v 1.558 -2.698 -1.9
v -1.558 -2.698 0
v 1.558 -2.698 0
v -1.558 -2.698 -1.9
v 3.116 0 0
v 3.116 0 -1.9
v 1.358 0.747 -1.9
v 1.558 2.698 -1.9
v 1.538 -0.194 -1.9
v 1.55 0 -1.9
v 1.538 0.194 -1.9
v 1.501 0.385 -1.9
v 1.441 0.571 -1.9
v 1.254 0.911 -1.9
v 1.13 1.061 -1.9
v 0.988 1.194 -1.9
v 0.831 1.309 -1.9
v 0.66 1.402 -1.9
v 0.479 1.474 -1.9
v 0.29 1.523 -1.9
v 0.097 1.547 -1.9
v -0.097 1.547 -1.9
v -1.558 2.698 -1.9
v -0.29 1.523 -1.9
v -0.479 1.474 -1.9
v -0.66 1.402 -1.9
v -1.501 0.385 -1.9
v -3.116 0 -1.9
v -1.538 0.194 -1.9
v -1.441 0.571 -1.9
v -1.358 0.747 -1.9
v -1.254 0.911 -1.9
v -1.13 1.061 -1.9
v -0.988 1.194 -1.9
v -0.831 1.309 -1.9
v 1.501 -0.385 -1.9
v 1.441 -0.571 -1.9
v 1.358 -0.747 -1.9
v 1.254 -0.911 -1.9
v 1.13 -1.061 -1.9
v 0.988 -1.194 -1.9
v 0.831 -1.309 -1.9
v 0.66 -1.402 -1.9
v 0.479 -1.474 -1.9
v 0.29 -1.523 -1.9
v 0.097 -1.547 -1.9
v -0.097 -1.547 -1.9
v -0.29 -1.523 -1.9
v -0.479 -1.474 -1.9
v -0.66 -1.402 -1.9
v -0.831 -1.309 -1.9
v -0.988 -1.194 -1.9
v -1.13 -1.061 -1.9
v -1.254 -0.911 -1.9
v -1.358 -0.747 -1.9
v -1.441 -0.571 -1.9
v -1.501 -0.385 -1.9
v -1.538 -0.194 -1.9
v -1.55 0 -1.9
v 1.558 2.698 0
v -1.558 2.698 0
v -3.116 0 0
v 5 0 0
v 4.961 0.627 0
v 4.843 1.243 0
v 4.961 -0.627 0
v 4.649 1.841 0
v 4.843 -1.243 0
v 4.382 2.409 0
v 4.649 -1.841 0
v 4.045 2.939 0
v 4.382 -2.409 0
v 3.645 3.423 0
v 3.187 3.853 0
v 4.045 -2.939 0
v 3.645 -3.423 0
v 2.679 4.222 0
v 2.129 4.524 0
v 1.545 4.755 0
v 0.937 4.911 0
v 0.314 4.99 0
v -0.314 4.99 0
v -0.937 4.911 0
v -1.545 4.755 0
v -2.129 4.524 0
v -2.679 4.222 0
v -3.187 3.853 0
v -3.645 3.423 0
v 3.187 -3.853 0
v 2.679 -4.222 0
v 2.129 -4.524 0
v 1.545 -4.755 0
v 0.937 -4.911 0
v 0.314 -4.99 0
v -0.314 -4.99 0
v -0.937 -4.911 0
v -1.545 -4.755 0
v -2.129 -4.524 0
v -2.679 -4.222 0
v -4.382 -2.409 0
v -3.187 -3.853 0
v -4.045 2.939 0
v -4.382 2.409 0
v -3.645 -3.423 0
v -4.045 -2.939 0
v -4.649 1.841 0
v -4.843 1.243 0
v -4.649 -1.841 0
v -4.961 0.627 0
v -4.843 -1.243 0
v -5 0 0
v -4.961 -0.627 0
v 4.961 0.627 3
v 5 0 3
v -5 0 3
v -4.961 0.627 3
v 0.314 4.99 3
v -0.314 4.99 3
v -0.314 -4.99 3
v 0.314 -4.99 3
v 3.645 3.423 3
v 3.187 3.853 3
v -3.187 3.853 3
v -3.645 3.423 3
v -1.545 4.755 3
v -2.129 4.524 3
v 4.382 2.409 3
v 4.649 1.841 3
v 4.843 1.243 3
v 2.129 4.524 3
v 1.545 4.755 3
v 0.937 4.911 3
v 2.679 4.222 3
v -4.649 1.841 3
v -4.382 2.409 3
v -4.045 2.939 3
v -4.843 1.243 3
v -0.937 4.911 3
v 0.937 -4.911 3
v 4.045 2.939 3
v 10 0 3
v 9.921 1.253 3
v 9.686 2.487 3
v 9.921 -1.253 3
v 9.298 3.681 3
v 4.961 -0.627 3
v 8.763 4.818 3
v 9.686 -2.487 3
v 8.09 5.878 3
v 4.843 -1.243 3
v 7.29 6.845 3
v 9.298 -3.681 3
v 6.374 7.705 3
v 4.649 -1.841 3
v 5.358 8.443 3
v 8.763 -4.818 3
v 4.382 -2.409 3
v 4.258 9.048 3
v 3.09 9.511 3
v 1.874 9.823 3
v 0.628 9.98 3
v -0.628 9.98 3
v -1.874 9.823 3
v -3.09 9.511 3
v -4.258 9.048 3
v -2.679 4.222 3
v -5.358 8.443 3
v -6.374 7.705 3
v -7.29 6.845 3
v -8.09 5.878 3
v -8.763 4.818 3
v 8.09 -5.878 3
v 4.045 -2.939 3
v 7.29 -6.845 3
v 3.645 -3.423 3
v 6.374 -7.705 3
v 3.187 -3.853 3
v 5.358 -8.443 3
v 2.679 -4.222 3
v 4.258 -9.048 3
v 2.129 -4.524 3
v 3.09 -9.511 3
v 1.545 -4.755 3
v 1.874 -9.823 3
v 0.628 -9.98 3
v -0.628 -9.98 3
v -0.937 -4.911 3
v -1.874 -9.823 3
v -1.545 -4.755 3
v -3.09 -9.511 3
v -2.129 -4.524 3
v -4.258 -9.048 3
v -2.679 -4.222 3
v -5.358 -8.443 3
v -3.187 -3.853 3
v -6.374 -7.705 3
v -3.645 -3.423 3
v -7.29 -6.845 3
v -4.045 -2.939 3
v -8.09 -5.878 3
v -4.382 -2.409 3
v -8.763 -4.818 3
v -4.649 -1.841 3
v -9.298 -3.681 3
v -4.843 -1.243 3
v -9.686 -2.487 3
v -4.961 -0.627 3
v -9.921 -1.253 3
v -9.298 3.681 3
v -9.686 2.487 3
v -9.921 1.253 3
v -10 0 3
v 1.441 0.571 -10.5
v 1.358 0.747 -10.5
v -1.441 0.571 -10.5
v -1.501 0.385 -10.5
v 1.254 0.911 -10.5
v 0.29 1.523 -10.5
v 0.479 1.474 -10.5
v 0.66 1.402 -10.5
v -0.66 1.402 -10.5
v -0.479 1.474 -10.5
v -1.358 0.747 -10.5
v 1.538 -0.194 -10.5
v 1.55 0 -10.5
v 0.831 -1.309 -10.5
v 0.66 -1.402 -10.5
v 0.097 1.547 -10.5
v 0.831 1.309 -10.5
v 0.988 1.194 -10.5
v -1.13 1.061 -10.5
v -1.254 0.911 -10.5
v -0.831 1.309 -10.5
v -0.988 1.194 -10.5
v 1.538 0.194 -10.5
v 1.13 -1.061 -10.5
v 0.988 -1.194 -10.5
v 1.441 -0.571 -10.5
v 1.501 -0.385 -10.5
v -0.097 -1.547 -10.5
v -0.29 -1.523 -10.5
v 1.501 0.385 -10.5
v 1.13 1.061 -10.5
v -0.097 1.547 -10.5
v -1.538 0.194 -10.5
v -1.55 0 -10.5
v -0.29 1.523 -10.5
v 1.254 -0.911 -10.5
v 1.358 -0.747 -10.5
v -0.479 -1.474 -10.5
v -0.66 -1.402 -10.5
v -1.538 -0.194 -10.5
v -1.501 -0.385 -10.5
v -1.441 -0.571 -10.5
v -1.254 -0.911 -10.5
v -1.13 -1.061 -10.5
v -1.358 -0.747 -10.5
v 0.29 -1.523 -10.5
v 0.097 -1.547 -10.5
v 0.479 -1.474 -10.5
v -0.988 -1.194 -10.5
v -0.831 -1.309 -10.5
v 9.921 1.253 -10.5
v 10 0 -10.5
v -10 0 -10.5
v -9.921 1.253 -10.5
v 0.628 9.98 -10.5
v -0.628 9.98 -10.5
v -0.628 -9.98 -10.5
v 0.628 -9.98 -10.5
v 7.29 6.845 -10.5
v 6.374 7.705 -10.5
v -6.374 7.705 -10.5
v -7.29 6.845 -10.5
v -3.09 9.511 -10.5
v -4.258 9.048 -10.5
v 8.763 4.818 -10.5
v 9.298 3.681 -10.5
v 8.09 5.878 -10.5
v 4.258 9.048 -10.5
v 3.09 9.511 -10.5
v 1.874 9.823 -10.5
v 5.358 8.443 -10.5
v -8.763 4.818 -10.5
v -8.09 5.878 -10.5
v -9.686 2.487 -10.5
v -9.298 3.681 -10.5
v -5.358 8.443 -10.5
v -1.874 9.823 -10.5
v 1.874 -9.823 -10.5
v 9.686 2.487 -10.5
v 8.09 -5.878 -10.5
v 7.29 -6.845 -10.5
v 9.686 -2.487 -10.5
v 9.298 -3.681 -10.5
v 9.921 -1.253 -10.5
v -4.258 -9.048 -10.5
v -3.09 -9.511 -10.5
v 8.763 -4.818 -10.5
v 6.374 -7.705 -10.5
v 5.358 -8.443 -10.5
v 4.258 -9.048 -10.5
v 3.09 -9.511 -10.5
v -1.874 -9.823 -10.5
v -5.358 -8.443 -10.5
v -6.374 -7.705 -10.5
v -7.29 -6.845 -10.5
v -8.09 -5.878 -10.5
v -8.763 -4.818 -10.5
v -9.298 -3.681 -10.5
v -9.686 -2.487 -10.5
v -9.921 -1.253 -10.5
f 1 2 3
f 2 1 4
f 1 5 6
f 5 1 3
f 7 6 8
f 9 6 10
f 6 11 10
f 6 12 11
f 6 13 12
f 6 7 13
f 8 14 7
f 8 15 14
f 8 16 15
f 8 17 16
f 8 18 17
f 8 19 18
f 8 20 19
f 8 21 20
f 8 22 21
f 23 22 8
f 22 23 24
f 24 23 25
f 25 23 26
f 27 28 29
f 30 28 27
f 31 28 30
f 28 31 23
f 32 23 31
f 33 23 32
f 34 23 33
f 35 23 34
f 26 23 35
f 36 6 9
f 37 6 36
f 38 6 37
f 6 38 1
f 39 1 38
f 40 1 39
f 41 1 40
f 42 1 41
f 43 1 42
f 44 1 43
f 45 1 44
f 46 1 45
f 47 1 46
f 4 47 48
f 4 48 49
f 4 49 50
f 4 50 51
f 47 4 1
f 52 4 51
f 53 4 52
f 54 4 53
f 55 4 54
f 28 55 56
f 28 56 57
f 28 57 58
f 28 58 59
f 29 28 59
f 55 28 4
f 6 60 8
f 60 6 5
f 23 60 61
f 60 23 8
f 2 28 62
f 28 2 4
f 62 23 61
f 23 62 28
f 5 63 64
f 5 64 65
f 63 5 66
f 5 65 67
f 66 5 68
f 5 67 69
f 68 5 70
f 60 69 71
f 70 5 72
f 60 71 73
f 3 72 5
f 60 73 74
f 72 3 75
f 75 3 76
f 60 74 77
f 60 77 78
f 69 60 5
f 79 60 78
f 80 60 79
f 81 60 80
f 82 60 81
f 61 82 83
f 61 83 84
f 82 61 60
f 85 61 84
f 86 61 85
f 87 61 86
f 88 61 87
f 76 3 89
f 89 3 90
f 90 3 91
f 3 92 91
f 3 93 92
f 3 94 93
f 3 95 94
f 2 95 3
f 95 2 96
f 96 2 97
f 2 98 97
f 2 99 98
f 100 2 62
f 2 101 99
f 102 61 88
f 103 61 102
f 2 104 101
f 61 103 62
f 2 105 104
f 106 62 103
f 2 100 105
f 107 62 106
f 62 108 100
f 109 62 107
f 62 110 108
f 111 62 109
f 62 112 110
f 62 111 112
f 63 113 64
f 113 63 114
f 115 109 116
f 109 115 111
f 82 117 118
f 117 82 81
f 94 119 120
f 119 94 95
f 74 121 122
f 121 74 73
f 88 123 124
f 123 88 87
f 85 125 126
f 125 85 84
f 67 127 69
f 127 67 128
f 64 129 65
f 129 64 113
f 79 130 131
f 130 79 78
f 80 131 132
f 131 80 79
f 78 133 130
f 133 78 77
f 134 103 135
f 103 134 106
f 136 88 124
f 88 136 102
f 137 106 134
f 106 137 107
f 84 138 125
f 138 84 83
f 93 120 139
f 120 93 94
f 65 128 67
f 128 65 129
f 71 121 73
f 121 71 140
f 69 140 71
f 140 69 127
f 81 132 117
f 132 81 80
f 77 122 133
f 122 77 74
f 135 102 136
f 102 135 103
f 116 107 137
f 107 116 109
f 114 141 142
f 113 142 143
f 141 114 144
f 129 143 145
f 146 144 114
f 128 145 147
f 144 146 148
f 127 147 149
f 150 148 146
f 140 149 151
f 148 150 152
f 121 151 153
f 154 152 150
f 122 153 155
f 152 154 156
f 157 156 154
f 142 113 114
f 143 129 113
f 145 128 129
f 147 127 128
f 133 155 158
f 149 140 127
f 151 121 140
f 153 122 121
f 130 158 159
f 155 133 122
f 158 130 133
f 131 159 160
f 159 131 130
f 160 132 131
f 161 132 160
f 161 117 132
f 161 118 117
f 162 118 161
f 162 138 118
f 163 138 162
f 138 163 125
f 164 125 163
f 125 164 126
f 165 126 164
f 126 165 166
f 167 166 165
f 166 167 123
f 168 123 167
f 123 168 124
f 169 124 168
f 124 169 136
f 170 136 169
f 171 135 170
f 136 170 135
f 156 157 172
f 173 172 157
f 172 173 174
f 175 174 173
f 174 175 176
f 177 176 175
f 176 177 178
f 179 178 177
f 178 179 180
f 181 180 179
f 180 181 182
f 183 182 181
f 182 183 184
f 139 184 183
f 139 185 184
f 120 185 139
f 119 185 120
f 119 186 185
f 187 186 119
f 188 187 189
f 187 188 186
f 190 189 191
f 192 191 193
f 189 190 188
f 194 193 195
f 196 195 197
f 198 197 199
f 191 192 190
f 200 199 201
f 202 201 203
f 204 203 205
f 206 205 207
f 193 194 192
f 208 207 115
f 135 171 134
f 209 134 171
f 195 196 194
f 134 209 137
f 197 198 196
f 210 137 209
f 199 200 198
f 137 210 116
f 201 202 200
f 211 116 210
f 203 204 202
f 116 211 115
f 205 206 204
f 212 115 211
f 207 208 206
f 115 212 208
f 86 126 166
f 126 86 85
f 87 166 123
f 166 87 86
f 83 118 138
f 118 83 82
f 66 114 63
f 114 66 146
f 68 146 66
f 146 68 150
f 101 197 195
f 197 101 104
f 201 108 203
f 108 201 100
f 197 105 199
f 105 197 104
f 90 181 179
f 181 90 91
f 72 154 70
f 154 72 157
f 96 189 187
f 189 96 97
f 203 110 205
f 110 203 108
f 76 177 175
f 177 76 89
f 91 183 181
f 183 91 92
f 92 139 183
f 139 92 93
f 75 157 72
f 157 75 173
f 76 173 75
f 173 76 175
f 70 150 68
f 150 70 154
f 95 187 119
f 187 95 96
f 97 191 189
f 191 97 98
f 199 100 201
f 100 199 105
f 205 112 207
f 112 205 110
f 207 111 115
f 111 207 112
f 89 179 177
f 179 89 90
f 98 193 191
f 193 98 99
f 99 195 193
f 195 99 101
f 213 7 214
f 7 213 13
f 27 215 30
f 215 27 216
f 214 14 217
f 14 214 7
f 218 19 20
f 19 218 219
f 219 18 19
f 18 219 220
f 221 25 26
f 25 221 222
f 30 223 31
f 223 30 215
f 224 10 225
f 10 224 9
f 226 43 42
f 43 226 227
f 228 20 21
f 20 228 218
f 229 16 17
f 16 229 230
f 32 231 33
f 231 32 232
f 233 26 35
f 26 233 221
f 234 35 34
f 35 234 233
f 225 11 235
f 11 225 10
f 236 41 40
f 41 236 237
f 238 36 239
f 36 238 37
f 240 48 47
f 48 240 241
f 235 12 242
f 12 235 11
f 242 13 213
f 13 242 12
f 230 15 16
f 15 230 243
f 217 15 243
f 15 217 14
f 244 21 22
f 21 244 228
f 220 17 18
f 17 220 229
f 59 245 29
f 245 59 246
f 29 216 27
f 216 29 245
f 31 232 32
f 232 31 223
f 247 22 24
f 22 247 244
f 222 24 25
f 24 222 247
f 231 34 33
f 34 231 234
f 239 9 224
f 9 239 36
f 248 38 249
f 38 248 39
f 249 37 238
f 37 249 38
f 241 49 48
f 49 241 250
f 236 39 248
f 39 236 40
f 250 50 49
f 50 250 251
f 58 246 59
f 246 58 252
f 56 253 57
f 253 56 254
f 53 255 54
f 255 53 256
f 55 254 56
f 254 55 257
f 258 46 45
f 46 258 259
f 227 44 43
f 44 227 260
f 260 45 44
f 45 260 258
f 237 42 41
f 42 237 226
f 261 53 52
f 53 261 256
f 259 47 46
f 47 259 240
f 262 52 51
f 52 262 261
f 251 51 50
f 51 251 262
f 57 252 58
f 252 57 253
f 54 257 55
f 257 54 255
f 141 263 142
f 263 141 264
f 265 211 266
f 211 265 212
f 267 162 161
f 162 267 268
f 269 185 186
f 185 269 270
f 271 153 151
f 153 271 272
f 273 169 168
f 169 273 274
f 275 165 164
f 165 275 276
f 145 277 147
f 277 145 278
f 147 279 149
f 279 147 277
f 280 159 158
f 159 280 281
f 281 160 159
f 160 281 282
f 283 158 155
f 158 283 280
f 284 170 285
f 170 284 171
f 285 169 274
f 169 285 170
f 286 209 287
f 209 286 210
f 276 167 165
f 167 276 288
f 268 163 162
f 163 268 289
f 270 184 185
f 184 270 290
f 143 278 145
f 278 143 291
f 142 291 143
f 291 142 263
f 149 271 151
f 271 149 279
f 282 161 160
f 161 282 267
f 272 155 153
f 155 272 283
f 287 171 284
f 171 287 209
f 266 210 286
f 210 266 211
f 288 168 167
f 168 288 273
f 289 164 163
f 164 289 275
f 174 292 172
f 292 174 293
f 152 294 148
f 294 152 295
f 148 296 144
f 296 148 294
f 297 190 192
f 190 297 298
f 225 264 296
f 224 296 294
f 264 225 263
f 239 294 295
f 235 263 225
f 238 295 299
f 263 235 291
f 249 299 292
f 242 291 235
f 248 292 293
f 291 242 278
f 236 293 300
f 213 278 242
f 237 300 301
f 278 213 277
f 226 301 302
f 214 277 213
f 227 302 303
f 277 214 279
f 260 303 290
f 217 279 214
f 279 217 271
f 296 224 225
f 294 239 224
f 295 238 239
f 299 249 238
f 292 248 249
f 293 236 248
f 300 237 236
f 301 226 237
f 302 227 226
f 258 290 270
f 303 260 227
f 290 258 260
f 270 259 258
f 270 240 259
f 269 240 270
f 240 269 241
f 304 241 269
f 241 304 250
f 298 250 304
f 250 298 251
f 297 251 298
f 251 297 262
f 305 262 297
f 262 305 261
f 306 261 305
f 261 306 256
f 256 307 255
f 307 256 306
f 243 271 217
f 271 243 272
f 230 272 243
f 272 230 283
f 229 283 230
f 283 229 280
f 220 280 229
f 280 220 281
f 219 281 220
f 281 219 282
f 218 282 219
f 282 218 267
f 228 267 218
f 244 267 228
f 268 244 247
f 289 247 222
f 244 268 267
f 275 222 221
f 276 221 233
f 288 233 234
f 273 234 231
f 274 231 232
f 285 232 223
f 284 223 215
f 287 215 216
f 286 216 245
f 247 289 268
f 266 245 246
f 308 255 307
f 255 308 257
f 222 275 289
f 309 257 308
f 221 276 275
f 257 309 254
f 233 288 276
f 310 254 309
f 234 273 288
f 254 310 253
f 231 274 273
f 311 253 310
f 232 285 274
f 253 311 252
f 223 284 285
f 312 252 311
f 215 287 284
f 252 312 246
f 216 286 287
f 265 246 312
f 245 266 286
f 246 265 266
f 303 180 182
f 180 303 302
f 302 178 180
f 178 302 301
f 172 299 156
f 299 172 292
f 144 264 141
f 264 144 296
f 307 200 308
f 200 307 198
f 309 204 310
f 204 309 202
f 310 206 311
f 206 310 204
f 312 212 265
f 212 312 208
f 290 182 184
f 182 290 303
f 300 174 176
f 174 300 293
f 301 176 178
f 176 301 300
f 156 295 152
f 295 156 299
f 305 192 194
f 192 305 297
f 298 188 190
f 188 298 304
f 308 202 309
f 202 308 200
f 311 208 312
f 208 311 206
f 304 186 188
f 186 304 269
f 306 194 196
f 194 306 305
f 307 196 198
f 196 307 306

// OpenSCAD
$fn = 50;


difference() {
	union() {
		translate(v = [0, 0, -10.5000000000]) {
			cylinder(h = 13.5000000000, r = 10.0000000000);
		}
	}
	union() {
		translate(v = [0, 0, 0]) {
			rotate(a = [0, 0, 0]) {
				difference() {
					union() {
						translate(v = [0, 0, -1.9000000000]) {
							linear_extrude(height = 1.9000000000) {
								polygon(points = [[3.1158000000, 0.0000000000], [1.5579000000, 2.6983619531], [-1.5579000000, 2.6983619531], [-3.1158000000, 0.0000000000], [-1.5579000000, -2.6983619531], [1.5579000000, -2.6983619531]]);
							}
						}
					}
					union();
				}
			}
		}
		#cylinder(h = 3, r = 5.0000000000);
		#translate(v = [0, 0, -100.0000000000]) {
			cylinder(h = 200, r = 1.5500000000);
		}
	}
}
